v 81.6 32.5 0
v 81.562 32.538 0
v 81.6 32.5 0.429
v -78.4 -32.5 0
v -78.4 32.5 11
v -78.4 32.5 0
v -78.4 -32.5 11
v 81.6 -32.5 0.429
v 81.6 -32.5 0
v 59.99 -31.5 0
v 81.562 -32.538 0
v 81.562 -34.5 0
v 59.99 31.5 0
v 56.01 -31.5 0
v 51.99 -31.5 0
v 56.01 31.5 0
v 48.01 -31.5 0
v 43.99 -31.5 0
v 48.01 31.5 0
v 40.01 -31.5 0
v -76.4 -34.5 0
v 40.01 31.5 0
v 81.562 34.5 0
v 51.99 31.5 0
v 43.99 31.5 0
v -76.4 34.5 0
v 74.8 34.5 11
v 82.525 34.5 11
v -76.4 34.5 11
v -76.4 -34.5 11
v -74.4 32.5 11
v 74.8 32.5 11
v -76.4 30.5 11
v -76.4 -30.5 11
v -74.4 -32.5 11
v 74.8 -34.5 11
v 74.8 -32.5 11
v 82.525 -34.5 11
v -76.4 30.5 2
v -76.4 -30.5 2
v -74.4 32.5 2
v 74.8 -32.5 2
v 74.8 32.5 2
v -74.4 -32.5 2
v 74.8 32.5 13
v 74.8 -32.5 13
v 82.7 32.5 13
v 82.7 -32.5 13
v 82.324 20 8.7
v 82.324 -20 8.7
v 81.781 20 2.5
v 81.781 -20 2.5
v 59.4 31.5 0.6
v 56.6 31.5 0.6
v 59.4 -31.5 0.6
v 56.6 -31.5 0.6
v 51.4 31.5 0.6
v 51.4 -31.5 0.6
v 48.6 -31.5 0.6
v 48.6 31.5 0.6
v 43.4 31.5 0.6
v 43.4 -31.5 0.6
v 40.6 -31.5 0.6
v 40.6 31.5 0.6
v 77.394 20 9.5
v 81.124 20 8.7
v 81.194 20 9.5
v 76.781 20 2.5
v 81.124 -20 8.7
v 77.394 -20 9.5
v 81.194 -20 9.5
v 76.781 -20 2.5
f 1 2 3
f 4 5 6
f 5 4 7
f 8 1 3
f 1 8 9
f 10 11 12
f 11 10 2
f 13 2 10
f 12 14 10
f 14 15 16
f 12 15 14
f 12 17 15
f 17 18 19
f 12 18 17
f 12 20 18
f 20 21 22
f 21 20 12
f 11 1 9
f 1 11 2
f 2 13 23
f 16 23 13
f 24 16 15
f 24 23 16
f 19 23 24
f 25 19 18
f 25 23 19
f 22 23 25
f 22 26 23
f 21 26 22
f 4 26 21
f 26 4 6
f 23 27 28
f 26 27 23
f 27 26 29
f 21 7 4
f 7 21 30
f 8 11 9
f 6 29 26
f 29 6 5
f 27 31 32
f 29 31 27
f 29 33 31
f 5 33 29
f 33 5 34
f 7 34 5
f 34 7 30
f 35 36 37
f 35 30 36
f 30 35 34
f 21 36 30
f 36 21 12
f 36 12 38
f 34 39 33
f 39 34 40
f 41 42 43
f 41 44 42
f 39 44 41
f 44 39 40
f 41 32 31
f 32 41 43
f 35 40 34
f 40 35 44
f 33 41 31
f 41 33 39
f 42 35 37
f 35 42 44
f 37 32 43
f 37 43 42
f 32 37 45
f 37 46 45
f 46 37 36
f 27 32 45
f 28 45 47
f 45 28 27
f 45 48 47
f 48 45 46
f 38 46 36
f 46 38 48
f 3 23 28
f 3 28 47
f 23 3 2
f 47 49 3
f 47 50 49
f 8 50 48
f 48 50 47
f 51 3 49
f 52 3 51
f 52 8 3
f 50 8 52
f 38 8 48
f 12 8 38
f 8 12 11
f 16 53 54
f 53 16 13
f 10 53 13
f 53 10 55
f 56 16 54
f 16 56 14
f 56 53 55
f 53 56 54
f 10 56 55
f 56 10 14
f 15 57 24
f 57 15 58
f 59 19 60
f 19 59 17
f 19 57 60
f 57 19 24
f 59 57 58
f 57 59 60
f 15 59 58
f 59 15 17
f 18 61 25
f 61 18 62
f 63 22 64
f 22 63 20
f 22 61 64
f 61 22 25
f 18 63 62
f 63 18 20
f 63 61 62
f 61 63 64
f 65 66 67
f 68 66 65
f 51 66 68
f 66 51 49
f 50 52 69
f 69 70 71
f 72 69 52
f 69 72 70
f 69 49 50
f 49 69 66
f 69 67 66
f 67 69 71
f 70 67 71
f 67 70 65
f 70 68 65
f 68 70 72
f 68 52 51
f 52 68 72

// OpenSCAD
// Pull-out drip tray only — prints as modelled, flat on the bed, basin
// up. See marsh_repot_021.scad.
include <marsh_repot_021.scad>
part = "tray";
